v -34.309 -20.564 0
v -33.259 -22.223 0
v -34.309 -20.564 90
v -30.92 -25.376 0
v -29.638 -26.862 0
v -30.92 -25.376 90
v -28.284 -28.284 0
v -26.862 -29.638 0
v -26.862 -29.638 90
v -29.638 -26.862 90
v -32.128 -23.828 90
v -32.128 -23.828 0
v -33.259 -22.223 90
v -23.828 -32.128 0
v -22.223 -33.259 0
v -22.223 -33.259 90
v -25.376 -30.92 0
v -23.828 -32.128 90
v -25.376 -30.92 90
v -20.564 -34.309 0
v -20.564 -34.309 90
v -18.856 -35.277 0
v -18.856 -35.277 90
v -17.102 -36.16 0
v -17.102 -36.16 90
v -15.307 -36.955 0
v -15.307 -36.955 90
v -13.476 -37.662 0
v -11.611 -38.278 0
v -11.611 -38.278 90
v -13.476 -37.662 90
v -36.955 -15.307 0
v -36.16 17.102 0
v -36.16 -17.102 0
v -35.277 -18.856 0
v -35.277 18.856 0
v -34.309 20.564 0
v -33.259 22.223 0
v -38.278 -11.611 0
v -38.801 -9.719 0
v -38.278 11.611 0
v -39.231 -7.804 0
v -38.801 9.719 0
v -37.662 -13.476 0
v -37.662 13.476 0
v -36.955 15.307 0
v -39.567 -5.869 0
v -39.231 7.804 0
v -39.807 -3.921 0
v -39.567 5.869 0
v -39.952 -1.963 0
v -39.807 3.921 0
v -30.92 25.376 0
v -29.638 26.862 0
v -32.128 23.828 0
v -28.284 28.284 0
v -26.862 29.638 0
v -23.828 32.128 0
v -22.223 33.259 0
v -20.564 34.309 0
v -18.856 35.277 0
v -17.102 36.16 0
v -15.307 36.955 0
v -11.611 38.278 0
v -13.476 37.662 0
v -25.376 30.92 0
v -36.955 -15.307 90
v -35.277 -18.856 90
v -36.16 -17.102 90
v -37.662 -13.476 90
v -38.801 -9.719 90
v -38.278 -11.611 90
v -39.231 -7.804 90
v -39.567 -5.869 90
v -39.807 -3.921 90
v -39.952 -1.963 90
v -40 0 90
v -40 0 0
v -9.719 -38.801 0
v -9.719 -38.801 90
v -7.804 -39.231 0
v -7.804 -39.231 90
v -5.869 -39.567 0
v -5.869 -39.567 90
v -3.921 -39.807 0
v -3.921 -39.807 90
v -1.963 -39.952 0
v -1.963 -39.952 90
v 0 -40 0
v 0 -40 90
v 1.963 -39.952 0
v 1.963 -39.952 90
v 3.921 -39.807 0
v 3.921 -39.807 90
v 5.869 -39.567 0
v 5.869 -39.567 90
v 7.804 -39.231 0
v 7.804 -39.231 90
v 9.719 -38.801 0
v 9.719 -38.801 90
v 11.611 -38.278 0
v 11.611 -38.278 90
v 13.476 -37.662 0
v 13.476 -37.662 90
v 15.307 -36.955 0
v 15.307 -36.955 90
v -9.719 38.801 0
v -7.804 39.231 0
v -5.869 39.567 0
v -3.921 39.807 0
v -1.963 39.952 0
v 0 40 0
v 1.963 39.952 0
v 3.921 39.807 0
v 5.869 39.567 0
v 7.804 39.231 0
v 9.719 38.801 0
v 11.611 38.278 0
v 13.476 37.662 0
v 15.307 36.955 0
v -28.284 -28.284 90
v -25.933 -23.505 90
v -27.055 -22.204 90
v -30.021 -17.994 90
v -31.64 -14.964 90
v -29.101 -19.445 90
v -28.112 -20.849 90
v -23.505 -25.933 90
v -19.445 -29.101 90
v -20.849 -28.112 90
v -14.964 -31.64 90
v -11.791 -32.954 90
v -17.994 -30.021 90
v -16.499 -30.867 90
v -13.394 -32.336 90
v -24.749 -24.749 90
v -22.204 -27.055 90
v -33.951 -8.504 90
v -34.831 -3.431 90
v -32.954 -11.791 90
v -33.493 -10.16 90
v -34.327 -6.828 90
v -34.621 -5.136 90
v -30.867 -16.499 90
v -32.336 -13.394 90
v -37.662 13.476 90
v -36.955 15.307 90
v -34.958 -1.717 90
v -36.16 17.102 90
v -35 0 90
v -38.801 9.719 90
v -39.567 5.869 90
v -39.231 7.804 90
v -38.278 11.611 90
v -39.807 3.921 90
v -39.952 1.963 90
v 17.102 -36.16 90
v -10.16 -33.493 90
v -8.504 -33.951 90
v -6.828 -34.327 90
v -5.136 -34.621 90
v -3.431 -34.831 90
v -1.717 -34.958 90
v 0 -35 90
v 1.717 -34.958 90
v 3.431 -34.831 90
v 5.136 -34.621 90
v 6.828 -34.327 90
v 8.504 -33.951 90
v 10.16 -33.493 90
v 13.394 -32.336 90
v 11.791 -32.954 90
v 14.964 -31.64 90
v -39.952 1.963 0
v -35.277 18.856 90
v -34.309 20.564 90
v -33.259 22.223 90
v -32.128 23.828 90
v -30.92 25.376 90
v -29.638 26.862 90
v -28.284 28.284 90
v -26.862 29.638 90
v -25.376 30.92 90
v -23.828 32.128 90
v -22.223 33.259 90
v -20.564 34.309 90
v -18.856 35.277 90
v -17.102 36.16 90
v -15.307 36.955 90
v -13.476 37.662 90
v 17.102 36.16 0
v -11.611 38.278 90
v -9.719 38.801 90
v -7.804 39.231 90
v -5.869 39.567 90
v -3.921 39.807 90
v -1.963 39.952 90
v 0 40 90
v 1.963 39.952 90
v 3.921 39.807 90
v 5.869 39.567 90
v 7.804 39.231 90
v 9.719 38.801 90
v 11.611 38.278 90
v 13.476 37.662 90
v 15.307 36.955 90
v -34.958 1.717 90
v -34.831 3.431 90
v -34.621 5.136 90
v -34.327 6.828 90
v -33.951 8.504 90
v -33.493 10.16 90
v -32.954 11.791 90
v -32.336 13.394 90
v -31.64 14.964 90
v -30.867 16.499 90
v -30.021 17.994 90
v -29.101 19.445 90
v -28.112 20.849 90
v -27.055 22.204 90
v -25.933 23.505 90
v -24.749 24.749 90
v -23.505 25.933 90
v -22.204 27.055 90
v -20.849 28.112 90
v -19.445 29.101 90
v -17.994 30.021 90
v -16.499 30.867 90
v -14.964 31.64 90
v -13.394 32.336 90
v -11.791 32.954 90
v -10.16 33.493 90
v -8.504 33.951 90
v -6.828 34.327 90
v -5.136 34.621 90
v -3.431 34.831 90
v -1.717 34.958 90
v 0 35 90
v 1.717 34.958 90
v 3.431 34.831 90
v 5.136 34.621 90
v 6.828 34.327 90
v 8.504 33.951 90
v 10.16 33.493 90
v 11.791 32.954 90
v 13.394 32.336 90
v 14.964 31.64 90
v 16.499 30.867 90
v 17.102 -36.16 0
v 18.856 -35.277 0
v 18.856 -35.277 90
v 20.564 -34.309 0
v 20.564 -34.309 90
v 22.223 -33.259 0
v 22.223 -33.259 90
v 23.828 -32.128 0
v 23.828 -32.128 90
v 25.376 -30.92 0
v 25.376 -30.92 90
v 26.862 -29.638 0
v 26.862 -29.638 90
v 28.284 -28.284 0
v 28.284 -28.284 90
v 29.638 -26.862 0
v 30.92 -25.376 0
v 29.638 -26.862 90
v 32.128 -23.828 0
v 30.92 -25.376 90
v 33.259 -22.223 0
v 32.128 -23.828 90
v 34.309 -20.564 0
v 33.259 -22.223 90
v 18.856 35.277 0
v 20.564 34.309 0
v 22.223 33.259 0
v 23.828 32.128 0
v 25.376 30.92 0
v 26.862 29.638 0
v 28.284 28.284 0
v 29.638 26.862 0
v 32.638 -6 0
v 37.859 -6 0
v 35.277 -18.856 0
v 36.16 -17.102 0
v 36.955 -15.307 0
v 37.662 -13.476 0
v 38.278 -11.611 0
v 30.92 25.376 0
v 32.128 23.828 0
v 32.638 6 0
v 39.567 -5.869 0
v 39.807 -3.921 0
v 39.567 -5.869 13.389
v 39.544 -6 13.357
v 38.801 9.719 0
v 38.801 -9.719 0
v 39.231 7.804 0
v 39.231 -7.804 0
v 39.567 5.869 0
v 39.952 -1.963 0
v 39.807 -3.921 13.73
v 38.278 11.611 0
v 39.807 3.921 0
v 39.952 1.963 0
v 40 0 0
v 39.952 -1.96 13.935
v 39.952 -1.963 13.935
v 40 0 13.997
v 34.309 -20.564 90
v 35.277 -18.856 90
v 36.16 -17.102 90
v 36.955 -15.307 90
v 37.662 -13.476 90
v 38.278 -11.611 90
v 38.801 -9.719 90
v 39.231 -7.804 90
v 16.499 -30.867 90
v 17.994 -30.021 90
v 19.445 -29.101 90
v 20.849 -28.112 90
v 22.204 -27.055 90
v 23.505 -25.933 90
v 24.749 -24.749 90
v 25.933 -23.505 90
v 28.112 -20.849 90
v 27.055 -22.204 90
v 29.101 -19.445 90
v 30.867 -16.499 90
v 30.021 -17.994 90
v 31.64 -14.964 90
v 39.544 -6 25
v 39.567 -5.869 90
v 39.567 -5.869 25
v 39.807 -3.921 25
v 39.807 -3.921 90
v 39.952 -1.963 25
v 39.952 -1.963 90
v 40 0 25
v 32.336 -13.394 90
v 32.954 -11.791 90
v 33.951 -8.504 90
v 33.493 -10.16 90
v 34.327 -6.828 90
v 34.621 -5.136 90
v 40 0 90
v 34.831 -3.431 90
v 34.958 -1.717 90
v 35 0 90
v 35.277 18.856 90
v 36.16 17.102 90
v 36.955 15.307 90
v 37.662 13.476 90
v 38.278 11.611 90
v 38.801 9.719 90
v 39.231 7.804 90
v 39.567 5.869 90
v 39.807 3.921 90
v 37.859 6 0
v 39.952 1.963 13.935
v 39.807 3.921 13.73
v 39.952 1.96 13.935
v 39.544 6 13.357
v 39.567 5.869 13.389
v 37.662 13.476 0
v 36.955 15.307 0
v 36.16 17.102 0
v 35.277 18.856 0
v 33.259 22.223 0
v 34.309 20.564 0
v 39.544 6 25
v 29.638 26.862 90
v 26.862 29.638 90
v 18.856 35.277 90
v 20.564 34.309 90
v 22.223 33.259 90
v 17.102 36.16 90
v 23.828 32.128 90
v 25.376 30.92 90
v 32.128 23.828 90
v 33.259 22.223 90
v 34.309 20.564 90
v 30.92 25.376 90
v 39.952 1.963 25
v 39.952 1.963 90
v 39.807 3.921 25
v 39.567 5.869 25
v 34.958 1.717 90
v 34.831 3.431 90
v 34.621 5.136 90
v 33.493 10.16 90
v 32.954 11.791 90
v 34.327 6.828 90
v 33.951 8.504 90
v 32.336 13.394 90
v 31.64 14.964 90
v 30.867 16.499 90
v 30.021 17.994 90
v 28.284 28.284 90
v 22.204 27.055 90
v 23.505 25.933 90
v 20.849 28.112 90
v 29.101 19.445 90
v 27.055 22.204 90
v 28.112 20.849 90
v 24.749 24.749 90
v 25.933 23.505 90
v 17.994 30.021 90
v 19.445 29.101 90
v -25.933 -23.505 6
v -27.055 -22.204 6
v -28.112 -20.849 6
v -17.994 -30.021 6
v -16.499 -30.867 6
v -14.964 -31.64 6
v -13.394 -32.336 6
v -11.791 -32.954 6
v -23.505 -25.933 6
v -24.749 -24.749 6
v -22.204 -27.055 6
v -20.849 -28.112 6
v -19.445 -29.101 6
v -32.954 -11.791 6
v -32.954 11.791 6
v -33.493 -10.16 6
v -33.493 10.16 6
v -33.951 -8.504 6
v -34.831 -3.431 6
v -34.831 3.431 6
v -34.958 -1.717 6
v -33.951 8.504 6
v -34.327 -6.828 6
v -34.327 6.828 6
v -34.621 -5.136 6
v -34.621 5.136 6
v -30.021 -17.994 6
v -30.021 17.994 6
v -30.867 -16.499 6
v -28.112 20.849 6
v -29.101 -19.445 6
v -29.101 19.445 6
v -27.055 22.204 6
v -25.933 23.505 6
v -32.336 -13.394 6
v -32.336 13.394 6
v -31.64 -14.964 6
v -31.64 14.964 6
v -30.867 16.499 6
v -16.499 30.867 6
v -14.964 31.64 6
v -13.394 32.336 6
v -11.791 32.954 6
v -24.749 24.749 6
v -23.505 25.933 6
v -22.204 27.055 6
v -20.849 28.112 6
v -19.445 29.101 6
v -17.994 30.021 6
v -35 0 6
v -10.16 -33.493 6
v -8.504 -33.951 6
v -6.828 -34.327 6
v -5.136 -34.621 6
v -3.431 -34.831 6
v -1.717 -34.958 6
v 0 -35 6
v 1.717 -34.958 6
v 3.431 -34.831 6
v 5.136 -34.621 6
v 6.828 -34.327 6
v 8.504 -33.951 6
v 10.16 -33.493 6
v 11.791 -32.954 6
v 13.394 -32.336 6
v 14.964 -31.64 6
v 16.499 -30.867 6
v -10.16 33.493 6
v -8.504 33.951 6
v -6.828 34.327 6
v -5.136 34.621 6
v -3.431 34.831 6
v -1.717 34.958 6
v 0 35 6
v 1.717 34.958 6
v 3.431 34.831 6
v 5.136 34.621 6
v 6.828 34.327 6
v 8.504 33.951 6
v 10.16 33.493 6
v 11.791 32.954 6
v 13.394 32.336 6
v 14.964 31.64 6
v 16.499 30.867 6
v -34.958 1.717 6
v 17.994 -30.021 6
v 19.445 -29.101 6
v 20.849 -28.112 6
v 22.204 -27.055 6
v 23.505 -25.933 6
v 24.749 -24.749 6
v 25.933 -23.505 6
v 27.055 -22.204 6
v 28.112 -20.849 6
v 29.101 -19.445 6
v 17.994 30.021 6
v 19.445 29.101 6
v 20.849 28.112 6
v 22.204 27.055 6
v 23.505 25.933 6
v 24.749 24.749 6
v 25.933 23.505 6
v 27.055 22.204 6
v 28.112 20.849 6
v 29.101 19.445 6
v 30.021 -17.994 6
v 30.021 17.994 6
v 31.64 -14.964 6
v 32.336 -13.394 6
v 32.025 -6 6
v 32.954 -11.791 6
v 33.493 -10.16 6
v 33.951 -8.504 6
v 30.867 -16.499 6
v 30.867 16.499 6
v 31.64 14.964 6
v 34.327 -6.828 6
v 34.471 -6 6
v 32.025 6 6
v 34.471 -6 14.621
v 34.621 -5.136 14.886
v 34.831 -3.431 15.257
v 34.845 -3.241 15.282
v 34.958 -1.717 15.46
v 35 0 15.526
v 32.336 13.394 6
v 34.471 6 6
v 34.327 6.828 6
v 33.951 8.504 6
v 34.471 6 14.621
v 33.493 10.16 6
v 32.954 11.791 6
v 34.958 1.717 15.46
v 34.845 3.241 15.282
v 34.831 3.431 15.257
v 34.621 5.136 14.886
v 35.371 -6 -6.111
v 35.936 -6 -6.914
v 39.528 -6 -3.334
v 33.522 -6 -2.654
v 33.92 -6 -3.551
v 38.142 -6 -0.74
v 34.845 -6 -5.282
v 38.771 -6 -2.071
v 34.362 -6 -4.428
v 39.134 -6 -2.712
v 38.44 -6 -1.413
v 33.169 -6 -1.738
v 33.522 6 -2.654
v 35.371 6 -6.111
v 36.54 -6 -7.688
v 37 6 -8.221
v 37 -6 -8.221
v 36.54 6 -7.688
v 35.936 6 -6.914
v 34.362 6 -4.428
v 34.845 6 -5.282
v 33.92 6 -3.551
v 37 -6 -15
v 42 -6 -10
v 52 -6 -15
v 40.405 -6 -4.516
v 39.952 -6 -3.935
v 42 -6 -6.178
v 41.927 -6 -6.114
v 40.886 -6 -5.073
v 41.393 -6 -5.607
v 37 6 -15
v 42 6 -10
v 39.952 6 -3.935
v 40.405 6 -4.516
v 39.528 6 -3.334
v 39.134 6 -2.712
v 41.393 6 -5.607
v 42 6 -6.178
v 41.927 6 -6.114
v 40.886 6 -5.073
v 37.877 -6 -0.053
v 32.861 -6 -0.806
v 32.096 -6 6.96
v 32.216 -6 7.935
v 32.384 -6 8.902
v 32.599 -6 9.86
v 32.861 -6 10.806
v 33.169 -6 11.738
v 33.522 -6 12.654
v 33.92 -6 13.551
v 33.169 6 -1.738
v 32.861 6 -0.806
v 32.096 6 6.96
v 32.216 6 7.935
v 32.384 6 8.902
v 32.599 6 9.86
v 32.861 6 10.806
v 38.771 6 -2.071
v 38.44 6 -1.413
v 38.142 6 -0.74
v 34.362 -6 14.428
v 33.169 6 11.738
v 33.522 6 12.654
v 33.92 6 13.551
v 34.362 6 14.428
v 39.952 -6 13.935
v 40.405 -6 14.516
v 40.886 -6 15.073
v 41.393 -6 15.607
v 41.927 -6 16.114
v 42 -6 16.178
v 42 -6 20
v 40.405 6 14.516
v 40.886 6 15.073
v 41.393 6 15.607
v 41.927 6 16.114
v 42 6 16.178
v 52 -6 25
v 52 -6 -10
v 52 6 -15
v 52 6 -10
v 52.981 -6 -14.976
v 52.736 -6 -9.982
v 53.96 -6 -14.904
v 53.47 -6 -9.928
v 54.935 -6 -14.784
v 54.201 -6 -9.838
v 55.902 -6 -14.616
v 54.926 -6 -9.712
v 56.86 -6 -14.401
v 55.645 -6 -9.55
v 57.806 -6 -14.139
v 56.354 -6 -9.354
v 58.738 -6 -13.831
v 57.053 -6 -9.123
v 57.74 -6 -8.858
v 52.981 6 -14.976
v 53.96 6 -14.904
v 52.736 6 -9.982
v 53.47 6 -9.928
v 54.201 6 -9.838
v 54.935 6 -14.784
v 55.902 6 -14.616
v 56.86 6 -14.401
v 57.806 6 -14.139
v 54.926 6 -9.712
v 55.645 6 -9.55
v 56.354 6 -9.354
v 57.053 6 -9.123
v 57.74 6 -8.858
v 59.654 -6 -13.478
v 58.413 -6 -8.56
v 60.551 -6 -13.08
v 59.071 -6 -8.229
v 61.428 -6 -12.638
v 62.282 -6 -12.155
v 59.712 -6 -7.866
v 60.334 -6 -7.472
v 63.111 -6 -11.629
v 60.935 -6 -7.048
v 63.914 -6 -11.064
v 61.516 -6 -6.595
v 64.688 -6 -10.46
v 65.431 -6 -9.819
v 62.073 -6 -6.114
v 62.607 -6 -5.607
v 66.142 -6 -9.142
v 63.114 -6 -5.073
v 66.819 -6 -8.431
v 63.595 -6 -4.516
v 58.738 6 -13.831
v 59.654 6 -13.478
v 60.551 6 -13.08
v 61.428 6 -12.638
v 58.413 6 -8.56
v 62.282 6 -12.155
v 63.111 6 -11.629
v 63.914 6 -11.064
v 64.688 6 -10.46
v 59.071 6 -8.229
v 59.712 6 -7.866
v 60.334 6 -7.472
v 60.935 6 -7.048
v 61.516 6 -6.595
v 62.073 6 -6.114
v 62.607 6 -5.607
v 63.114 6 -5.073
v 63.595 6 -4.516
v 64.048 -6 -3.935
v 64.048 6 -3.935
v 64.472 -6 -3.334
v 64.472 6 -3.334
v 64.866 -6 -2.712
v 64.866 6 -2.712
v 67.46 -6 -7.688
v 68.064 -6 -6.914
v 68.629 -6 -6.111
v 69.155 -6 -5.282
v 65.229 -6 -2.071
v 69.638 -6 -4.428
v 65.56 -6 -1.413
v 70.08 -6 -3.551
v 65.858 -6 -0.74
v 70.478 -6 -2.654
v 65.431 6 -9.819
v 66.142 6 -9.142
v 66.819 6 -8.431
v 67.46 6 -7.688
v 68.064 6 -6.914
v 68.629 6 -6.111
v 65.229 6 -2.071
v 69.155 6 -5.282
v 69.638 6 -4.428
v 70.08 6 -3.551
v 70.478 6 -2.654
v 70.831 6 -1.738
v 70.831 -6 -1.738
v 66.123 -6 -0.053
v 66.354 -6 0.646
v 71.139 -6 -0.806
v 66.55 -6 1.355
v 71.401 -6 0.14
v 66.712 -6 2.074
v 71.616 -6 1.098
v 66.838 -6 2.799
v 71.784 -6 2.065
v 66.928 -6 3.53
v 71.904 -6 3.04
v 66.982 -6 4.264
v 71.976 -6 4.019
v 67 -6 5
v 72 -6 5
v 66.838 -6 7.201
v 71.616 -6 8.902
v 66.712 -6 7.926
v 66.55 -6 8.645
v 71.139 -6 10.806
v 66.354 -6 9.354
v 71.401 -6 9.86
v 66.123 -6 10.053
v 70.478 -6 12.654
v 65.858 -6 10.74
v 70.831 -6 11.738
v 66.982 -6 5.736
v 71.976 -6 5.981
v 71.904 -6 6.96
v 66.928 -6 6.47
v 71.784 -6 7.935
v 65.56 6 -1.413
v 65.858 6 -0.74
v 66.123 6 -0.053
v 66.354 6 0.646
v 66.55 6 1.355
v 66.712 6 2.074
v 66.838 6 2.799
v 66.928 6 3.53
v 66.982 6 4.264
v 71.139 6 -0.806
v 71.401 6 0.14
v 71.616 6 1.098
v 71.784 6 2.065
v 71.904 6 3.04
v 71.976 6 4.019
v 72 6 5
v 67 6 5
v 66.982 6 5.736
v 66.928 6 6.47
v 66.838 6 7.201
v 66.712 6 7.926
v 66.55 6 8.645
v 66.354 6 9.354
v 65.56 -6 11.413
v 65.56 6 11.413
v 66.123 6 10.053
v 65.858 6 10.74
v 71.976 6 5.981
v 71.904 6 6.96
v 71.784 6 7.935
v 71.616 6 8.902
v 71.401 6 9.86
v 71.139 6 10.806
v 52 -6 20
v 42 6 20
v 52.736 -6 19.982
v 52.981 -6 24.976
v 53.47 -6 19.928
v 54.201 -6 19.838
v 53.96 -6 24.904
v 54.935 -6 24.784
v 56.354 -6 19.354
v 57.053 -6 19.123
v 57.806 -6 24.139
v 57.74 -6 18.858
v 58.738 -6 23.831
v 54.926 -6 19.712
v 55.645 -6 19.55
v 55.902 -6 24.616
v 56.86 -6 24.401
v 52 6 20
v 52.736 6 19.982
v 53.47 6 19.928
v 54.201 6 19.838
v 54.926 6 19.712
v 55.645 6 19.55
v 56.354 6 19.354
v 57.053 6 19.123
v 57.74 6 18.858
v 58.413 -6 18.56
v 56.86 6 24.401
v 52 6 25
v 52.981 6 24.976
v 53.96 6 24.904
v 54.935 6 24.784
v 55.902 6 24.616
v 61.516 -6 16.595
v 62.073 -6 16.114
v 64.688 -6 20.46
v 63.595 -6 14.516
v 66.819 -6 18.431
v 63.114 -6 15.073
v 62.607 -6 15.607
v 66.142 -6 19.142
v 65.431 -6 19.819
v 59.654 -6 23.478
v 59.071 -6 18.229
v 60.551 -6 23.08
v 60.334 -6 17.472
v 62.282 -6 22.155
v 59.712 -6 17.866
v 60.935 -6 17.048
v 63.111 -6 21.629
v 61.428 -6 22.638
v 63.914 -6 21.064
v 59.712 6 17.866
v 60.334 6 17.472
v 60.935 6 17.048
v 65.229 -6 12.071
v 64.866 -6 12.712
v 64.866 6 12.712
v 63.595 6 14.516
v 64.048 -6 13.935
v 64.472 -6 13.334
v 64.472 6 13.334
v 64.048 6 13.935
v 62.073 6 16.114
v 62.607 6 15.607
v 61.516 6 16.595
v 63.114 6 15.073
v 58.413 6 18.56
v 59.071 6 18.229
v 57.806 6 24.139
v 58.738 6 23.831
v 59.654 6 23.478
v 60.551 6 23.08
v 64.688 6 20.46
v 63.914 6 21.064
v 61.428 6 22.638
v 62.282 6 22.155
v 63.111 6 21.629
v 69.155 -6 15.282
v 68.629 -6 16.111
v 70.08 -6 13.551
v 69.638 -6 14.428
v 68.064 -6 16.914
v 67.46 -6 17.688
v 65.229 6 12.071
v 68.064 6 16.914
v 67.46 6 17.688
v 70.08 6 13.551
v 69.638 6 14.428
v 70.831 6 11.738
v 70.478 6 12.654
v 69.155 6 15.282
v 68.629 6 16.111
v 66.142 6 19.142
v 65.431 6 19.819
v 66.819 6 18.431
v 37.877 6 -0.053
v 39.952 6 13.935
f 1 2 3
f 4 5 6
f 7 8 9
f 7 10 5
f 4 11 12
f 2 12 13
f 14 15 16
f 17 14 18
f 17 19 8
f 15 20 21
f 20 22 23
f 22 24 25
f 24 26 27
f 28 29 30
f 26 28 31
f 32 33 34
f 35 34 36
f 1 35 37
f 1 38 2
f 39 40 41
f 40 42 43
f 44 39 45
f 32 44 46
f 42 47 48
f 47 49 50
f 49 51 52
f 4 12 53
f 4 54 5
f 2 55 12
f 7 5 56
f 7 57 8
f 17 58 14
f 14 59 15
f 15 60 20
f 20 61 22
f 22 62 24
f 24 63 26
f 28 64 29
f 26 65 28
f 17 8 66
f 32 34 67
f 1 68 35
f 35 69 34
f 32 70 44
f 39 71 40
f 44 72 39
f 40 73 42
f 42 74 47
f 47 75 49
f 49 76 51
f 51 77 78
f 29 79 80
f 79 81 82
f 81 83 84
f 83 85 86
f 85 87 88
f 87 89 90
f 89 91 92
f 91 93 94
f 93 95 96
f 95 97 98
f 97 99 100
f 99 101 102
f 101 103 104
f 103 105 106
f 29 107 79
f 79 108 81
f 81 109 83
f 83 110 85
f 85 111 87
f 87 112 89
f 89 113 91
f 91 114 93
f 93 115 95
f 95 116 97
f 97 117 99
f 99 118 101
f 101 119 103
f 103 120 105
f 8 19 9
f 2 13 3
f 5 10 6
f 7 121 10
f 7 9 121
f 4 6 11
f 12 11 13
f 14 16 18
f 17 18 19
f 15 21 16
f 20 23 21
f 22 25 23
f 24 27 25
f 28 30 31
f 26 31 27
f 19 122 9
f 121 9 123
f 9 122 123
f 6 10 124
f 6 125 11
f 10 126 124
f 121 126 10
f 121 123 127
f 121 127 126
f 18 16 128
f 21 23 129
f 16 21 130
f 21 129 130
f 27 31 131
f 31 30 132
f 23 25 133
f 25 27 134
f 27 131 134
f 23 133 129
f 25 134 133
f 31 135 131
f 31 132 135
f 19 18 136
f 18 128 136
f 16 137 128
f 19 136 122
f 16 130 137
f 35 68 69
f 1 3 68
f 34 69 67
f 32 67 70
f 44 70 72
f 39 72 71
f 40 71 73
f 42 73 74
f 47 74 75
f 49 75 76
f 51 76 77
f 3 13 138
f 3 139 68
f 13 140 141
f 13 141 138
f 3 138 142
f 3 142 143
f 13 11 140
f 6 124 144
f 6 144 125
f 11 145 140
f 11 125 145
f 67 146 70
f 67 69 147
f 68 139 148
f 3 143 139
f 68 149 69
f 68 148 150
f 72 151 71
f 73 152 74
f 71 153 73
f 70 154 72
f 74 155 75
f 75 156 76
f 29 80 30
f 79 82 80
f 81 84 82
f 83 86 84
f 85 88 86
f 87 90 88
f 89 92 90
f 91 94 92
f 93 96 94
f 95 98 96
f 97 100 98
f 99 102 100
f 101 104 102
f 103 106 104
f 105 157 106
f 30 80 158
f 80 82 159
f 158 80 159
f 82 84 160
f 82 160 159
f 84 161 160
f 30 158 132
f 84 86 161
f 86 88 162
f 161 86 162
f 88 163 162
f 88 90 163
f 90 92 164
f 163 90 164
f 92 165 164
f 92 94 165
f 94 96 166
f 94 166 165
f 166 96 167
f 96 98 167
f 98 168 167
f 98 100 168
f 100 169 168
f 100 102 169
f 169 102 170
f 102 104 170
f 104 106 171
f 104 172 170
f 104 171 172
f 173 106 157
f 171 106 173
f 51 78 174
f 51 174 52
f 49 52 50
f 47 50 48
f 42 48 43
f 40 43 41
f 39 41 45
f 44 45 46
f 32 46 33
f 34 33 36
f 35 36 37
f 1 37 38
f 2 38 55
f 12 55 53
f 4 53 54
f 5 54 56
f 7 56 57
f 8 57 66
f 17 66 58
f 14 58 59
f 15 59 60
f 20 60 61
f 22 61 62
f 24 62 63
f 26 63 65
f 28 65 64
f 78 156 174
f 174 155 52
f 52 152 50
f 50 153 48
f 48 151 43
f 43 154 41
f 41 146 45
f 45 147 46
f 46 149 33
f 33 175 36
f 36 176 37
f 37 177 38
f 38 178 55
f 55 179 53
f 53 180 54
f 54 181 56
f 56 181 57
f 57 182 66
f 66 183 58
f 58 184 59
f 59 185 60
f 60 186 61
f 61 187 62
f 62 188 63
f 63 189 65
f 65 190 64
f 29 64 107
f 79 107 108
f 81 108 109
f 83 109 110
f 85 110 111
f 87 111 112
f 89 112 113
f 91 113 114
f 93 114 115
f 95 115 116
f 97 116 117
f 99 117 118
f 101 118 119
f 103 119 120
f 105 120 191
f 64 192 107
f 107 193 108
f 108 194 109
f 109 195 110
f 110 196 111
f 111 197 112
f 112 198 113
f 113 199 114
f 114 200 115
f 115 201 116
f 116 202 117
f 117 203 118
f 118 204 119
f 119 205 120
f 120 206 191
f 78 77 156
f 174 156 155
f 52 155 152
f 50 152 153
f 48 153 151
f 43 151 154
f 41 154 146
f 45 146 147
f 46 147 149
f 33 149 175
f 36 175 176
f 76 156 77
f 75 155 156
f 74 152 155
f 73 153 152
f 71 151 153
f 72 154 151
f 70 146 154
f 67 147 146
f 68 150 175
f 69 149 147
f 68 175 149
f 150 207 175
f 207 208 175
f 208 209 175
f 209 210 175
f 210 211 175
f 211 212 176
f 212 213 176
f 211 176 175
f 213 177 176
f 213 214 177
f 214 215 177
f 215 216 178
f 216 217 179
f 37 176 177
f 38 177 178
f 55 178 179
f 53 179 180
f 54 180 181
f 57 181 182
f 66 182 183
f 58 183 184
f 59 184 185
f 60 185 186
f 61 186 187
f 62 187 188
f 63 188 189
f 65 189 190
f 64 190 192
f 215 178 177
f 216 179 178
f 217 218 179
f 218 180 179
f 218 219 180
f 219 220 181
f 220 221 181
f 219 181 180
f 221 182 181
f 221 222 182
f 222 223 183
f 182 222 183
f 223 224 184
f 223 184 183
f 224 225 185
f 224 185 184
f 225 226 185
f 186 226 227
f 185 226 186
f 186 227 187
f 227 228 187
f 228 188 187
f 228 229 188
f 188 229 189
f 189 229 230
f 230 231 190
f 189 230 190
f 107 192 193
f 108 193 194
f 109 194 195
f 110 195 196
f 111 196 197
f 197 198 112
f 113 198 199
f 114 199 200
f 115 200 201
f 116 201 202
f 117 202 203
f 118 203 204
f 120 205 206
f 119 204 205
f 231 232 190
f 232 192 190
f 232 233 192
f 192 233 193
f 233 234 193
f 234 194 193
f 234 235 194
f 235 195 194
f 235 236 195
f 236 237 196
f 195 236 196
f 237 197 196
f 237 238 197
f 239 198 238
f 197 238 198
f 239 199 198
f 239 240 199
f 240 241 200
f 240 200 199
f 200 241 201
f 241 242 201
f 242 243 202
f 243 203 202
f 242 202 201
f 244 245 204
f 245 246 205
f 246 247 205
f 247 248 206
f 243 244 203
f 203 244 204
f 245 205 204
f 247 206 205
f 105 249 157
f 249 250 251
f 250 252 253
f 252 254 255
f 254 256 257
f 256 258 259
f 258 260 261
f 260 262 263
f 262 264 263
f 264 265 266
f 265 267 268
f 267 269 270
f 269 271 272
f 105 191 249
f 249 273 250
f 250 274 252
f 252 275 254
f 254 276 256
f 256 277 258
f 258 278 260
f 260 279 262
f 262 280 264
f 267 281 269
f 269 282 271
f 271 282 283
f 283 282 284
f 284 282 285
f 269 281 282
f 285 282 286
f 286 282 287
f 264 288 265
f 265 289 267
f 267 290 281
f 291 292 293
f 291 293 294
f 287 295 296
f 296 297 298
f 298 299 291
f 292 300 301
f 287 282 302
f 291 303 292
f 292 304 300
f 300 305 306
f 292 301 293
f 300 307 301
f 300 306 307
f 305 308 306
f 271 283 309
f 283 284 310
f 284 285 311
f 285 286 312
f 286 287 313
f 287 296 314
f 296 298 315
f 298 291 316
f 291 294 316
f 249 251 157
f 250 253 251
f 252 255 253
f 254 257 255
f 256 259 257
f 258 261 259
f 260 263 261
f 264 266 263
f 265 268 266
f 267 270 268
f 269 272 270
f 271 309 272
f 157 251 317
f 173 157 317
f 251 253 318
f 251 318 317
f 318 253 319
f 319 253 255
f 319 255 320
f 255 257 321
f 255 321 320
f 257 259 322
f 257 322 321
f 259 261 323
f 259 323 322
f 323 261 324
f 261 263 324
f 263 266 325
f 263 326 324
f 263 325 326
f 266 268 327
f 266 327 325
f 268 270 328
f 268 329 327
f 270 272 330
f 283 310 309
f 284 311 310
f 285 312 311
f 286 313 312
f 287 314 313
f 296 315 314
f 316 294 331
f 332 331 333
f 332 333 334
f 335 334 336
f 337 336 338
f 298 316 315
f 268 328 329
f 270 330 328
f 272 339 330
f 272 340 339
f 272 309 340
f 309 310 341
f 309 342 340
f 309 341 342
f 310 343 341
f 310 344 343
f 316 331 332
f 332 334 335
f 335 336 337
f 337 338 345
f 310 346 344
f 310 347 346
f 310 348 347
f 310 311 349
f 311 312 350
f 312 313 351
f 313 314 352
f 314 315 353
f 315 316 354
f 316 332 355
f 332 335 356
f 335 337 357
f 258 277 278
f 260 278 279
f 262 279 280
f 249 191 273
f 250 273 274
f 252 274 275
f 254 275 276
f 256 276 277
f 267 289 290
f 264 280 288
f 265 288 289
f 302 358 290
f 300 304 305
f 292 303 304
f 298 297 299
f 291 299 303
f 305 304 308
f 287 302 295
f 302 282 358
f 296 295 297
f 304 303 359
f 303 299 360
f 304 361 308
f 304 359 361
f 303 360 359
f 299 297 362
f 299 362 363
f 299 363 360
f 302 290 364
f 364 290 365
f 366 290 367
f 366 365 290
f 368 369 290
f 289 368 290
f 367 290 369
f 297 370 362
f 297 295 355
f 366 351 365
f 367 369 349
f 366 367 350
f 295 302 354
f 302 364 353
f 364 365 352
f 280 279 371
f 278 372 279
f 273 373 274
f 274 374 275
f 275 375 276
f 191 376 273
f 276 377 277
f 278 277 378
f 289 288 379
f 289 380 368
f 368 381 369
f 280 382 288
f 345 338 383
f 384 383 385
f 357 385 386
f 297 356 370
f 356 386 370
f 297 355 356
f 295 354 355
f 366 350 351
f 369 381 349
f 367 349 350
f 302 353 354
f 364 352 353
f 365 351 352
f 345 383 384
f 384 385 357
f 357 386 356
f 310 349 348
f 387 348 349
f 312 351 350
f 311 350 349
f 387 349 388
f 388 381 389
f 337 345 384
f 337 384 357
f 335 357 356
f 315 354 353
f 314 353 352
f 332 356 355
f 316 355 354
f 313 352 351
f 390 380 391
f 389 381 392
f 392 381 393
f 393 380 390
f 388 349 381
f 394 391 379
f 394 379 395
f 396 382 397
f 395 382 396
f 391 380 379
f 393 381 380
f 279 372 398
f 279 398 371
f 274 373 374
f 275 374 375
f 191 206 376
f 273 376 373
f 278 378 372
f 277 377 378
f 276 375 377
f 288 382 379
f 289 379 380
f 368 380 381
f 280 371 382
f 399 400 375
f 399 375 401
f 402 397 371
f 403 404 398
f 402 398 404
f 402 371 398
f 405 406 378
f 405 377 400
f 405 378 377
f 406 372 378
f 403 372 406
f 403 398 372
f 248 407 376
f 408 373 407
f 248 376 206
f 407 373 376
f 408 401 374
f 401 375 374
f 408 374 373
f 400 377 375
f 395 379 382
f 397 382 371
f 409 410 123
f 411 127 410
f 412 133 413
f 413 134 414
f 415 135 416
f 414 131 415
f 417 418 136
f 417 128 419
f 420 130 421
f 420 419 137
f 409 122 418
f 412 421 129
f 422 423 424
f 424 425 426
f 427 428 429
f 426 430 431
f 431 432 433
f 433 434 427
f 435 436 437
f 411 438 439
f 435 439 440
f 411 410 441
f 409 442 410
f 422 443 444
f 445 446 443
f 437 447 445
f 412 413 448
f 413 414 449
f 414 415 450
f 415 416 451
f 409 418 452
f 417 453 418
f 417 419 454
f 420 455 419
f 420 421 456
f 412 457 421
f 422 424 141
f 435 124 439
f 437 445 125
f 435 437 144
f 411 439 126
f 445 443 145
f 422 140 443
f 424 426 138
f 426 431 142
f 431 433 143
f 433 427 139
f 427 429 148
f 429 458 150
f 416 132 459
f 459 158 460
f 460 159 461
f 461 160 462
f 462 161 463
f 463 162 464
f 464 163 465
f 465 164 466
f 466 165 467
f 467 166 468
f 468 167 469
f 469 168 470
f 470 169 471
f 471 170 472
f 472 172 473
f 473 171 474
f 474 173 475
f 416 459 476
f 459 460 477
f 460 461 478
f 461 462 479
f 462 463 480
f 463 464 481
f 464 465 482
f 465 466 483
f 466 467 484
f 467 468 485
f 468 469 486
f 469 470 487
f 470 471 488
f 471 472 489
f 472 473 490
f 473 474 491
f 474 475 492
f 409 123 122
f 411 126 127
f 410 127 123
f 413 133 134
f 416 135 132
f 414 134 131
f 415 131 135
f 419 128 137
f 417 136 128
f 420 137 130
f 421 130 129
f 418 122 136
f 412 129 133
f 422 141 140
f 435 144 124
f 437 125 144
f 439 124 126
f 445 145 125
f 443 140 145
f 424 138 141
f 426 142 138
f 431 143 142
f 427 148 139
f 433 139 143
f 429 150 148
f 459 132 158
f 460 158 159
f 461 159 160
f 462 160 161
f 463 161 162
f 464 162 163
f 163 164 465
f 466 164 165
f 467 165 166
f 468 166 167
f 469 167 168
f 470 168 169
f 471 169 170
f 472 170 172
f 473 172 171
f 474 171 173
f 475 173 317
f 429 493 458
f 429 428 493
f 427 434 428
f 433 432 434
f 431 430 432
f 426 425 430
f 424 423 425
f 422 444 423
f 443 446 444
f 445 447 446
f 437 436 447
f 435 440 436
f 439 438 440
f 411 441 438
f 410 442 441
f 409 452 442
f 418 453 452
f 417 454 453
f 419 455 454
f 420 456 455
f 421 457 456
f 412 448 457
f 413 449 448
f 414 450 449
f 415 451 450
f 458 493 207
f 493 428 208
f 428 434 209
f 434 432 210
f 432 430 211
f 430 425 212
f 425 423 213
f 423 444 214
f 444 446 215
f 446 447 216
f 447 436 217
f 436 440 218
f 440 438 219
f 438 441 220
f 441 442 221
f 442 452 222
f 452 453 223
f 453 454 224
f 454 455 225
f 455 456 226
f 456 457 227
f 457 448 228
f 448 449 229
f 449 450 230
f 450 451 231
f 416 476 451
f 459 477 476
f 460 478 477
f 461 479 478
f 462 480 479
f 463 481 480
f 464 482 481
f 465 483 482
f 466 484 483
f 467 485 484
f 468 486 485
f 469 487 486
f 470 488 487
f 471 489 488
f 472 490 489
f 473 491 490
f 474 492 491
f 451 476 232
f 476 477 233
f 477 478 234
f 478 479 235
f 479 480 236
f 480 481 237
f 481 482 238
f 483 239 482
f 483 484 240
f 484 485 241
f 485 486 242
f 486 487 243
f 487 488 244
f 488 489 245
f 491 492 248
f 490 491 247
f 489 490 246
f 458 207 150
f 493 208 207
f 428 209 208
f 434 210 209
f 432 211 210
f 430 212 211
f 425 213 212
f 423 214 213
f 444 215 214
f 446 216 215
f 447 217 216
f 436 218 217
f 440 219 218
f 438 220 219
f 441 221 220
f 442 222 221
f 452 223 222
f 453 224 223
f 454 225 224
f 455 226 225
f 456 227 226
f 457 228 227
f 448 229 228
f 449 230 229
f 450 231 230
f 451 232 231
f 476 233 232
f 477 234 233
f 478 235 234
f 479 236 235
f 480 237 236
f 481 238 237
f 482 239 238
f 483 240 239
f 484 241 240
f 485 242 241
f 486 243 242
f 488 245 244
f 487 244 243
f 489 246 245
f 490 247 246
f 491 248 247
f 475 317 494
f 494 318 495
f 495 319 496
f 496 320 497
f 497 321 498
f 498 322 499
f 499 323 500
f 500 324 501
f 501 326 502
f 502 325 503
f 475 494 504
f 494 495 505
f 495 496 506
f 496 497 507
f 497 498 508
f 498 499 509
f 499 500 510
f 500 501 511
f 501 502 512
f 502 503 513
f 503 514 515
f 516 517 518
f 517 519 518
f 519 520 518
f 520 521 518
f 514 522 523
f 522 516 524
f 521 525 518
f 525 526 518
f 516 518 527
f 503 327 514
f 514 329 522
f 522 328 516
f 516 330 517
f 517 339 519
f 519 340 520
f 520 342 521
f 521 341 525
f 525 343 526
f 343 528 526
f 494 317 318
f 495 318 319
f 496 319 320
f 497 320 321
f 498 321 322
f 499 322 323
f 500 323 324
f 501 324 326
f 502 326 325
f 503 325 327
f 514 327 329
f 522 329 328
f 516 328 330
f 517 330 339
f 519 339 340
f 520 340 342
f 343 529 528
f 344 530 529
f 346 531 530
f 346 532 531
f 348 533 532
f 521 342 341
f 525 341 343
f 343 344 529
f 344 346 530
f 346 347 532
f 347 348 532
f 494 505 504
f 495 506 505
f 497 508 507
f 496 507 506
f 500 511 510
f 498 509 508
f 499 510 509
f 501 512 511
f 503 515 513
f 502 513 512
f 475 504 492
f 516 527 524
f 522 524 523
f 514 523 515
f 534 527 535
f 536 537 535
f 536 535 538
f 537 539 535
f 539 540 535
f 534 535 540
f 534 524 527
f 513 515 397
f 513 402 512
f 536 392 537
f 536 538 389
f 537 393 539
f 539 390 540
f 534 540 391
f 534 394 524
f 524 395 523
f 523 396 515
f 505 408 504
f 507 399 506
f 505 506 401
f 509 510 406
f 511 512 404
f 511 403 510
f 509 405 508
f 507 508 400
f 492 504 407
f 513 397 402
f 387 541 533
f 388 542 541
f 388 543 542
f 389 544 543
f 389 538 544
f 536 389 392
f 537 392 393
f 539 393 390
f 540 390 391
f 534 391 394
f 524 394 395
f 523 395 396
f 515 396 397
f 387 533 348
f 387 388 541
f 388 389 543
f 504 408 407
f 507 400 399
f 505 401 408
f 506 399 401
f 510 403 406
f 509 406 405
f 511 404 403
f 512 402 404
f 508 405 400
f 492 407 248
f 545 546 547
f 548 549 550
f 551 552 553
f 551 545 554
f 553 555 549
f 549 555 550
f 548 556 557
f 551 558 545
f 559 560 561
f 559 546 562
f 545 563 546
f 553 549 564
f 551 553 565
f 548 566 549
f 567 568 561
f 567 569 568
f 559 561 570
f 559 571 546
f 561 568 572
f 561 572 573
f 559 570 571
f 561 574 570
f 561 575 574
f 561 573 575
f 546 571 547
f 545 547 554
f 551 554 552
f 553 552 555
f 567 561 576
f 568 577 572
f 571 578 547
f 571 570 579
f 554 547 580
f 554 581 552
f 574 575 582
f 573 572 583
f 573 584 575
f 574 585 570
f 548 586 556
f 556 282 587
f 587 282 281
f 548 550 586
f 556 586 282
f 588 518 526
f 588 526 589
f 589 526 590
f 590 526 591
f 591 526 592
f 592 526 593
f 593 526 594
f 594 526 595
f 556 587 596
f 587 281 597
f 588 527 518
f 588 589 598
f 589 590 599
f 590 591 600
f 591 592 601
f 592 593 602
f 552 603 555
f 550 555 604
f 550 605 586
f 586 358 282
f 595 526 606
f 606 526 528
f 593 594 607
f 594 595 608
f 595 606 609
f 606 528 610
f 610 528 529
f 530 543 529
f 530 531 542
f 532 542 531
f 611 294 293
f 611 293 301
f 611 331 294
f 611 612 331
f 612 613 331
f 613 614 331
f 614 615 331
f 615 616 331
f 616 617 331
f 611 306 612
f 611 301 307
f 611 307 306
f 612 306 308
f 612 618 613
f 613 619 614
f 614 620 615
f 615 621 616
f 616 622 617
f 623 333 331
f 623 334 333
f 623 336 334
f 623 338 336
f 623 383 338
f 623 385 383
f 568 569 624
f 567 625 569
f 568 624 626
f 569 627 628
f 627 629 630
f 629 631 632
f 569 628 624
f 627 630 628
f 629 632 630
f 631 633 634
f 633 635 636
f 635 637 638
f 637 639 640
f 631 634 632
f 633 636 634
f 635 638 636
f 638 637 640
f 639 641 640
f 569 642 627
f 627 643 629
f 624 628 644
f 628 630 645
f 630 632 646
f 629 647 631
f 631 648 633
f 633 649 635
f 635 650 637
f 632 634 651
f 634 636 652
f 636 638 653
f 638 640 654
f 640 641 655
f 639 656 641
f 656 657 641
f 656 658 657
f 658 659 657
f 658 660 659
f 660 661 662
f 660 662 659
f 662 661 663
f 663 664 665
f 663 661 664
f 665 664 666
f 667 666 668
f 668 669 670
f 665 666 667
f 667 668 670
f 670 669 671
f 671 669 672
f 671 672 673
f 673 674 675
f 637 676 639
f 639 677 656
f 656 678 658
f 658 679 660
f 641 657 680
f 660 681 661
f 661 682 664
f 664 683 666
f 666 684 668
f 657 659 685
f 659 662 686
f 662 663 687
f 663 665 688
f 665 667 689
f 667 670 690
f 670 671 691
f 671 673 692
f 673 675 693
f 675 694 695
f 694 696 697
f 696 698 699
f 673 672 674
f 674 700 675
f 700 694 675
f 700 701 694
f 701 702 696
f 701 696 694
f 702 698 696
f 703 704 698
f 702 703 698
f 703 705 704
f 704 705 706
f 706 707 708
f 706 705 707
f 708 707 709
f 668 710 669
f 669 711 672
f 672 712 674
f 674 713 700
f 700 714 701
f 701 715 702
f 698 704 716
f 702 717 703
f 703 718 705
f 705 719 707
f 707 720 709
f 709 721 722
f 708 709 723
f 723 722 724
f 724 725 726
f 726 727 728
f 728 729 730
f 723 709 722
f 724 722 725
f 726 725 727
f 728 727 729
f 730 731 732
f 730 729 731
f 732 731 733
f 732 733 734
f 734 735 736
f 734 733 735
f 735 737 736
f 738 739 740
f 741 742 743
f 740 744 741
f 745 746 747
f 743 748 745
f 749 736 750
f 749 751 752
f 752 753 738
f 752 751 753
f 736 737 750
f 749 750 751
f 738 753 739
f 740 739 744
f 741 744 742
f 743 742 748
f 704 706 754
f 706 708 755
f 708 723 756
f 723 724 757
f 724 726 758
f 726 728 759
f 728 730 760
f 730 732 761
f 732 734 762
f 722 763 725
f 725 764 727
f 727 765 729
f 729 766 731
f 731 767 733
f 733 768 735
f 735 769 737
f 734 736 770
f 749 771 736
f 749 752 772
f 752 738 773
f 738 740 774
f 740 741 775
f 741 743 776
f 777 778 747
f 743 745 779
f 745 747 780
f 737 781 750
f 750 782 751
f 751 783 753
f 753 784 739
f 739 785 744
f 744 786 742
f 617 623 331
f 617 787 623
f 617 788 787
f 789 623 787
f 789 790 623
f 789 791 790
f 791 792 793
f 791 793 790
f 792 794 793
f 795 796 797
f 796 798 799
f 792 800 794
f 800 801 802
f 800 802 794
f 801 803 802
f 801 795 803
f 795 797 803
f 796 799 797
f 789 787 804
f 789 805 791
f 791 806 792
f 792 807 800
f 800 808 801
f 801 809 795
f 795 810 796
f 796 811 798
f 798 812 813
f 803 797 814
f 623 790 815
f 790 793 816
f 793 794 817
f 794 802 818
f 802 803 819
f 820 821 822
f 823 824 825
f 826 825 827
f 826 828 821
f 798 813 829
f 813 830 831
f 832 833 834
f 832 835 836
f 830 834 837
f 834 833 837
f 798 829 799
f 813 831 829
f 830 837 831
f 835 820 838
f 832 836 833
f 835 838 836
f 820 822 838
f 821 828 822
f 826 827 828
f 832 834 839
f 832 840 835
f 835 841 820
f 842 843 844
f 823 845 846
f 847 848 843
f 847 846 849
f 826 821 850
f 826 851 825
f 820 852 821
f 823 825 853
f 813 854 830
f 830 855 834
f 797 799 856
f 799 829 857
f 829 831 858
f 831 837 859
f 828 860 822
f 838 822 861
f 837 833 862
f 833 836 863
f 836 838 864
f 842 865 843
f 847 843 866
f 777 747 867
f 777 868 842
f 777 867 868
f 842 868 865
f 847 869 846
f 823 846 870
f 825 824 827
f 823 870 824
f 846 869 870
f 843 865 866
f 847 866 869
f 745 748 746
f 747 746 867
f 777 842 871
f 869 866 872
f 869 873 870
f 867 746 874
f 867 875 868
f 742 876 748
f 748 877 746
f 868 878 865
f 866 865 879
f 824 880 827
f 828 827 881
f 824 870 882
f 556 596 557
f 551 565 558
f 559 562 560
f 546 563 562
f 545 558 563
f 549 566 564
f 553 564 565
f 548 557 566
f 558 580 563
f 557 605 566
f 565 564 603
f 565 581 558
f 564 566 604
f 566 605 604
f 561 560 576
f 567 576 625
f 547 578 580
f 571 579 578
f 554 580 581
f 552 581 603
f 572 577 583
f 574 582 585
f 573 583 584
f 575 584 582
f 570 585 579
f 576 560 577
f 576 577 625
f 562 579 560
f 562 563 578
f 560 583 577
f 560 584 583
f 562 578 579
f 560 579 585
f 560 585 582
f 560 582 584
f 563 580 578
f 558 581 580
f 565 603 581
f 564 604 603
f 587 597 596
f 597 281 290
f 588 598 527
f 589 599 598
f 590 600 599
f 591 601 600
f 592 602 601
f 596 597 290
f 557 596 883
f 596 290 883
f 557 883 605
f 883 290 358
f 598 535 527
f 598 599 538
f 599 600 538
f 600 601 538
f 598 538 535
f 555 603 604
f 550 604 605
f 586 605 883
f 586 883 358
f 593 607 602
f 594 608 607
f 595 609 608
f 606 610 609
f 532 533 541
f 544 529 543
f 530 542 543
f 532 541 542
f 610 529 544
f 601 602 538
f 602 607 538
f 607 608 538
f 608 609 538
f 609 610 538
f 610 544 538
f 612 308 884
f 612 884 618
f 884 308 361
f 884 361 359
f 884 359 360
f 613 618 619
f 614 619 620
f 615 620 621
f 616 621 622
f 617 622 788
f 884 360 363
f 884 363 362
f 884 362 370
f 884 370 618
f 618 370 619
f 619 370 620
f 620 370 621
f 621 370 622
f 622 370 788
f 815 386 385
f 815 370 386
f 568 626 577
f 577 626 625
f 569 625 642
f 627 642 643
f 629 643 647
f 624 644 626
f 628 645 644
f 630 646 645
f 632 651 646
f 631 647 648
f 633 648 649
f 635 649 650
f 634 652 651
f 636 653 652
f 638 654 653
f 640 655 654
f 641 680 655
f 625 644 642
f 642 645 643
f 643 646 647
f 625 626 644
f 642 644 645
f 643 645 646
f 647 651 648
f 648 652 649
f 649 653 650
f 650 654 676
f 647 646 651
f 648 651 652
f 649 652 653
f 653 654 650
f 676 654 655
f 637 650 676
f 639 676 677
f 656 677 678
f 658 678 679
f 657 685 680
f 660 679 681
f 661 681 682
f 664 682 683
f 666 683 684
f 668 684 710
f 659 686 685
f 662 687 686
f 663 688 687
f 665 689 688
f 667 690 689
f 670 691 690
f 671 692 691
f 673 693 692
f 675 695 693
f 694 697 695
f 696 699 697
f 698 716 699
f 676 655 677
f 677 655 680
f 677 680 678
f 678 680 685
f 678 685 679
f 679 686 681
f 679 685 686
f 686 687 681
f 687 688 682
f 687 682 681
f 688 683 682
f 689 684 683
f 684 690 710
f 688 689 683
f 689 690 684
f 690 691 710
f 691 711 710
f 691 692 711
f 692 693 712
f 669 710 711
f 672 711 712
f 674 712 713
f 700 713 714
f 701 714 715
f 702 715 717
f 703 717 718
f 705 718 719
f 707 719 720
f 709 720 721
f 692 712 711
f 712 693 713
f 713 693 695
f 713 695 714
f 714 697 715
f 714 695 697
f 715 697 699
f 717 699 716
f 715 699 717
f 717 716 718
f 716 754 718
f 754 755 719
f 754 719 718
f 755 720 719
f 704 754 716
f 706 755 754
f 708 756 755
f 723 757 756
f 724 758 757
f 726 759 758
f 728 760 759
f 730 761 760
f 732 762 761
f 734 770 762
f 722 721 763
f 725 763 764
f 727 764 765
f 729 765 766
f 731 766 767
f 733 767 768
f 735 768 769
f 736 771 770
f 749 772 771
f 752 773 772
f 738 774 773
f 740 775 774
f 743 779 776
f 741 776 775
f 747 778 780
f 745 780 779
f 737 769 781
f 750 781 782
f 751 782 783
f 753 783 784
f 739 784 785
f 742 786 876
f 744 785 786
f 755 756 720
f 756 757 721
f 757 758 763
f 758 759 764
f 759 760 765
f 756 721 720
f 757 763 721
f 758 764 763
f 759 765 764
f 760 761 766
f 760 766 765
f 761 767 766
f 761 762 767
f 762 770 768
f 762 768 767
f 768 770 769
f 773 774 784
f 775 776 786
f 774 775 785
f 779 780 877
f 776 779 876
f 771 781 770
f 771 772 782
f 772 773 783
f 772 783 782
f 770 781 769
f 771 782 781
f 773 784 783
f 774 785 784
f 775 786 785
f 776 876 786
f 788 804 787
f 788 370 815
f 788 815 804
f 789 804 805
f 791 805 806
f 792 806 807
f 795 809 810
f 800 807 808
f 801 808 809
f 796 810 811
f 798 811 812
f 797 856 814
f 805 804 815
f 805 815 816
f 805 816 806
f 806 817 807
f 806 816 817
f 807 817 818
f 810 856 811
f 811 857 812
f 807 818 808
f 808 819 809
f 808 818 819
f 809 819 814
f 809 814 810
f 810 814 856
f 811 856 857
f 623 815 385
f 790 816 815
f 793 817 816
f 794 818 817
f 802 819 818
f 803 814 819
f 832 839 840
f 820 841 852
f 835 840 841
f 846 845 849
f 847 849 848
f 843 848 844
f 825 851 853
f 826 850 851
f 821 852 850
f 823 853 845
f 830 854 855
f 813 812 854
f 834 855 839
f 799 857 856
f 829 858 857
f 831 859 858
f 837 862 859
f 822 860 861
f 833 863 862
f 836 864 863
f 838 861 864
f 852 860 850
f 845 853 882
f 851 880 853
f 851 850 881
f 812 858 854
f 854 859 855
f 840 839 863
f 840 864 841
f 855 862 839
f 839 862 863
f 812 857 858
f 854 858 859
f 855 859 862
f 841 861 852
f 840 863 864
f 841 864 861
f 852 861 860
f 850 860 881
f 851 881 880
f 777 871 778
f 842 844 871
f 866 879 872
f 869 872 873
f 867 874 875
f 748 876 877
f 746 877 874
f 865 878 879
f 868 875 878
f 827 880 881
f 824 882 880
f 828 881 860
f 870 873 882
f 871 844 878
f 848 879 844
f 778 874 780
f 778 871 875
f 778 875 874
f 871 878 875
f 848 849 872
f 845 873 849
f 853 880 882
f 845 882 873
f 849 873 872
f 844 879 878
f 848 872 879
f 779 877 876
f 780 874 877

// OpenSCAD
$fn = 128;

mug_outer_d = 80;
mug_inner_d = 70;
mug_h       = 90;
bottom_t    = 6;

handle_inner_h = 30;
handle_inner_w = 25;
handle_wall    = 5;
handle_thick_y = 12;

handle_outer_h = handle_inner_h + 2*handle_wall; // 40
handle_outer_w = handle_inner_w + 2*handle_wall; // 35

mug_r = mug_outer_d/2;
handle_zc = mug_h/2;
attach_overlap = 3;
handle_x = mug_r - attach_overlap;

module d2d(h, w) {
    r = h/2;
    rect_w = max(w - r, 0);
    union() {
        square([rect_w, h], center=false);
        translate([rect_w, r]) circle(r=r);
    }
}

module mug_body() {
    difference() {
        cylinder(h=mug_h, d=mug_outer_d);
        translate([0, 0, bottom_t])
            cylinder(h=mug_h - bottom_t + 0.01, d=mug_inner_d);
    }
}

module handle() {
    translate([handle_x, -handle_thick_y/2, handle_zc - handle_outer_h/2])
        rotate([-90, 0, 0])
            linear_extrude(height=handle_thick_y)
                difference() {
                    d2d(handle_outer_h, handle_outer_w);
                    translate([handle_wall, handle_wall])
                        d2d(handle_inner_h, handle_inner_w);
                }
}

union() {
    mug_body();
    handle();
}
